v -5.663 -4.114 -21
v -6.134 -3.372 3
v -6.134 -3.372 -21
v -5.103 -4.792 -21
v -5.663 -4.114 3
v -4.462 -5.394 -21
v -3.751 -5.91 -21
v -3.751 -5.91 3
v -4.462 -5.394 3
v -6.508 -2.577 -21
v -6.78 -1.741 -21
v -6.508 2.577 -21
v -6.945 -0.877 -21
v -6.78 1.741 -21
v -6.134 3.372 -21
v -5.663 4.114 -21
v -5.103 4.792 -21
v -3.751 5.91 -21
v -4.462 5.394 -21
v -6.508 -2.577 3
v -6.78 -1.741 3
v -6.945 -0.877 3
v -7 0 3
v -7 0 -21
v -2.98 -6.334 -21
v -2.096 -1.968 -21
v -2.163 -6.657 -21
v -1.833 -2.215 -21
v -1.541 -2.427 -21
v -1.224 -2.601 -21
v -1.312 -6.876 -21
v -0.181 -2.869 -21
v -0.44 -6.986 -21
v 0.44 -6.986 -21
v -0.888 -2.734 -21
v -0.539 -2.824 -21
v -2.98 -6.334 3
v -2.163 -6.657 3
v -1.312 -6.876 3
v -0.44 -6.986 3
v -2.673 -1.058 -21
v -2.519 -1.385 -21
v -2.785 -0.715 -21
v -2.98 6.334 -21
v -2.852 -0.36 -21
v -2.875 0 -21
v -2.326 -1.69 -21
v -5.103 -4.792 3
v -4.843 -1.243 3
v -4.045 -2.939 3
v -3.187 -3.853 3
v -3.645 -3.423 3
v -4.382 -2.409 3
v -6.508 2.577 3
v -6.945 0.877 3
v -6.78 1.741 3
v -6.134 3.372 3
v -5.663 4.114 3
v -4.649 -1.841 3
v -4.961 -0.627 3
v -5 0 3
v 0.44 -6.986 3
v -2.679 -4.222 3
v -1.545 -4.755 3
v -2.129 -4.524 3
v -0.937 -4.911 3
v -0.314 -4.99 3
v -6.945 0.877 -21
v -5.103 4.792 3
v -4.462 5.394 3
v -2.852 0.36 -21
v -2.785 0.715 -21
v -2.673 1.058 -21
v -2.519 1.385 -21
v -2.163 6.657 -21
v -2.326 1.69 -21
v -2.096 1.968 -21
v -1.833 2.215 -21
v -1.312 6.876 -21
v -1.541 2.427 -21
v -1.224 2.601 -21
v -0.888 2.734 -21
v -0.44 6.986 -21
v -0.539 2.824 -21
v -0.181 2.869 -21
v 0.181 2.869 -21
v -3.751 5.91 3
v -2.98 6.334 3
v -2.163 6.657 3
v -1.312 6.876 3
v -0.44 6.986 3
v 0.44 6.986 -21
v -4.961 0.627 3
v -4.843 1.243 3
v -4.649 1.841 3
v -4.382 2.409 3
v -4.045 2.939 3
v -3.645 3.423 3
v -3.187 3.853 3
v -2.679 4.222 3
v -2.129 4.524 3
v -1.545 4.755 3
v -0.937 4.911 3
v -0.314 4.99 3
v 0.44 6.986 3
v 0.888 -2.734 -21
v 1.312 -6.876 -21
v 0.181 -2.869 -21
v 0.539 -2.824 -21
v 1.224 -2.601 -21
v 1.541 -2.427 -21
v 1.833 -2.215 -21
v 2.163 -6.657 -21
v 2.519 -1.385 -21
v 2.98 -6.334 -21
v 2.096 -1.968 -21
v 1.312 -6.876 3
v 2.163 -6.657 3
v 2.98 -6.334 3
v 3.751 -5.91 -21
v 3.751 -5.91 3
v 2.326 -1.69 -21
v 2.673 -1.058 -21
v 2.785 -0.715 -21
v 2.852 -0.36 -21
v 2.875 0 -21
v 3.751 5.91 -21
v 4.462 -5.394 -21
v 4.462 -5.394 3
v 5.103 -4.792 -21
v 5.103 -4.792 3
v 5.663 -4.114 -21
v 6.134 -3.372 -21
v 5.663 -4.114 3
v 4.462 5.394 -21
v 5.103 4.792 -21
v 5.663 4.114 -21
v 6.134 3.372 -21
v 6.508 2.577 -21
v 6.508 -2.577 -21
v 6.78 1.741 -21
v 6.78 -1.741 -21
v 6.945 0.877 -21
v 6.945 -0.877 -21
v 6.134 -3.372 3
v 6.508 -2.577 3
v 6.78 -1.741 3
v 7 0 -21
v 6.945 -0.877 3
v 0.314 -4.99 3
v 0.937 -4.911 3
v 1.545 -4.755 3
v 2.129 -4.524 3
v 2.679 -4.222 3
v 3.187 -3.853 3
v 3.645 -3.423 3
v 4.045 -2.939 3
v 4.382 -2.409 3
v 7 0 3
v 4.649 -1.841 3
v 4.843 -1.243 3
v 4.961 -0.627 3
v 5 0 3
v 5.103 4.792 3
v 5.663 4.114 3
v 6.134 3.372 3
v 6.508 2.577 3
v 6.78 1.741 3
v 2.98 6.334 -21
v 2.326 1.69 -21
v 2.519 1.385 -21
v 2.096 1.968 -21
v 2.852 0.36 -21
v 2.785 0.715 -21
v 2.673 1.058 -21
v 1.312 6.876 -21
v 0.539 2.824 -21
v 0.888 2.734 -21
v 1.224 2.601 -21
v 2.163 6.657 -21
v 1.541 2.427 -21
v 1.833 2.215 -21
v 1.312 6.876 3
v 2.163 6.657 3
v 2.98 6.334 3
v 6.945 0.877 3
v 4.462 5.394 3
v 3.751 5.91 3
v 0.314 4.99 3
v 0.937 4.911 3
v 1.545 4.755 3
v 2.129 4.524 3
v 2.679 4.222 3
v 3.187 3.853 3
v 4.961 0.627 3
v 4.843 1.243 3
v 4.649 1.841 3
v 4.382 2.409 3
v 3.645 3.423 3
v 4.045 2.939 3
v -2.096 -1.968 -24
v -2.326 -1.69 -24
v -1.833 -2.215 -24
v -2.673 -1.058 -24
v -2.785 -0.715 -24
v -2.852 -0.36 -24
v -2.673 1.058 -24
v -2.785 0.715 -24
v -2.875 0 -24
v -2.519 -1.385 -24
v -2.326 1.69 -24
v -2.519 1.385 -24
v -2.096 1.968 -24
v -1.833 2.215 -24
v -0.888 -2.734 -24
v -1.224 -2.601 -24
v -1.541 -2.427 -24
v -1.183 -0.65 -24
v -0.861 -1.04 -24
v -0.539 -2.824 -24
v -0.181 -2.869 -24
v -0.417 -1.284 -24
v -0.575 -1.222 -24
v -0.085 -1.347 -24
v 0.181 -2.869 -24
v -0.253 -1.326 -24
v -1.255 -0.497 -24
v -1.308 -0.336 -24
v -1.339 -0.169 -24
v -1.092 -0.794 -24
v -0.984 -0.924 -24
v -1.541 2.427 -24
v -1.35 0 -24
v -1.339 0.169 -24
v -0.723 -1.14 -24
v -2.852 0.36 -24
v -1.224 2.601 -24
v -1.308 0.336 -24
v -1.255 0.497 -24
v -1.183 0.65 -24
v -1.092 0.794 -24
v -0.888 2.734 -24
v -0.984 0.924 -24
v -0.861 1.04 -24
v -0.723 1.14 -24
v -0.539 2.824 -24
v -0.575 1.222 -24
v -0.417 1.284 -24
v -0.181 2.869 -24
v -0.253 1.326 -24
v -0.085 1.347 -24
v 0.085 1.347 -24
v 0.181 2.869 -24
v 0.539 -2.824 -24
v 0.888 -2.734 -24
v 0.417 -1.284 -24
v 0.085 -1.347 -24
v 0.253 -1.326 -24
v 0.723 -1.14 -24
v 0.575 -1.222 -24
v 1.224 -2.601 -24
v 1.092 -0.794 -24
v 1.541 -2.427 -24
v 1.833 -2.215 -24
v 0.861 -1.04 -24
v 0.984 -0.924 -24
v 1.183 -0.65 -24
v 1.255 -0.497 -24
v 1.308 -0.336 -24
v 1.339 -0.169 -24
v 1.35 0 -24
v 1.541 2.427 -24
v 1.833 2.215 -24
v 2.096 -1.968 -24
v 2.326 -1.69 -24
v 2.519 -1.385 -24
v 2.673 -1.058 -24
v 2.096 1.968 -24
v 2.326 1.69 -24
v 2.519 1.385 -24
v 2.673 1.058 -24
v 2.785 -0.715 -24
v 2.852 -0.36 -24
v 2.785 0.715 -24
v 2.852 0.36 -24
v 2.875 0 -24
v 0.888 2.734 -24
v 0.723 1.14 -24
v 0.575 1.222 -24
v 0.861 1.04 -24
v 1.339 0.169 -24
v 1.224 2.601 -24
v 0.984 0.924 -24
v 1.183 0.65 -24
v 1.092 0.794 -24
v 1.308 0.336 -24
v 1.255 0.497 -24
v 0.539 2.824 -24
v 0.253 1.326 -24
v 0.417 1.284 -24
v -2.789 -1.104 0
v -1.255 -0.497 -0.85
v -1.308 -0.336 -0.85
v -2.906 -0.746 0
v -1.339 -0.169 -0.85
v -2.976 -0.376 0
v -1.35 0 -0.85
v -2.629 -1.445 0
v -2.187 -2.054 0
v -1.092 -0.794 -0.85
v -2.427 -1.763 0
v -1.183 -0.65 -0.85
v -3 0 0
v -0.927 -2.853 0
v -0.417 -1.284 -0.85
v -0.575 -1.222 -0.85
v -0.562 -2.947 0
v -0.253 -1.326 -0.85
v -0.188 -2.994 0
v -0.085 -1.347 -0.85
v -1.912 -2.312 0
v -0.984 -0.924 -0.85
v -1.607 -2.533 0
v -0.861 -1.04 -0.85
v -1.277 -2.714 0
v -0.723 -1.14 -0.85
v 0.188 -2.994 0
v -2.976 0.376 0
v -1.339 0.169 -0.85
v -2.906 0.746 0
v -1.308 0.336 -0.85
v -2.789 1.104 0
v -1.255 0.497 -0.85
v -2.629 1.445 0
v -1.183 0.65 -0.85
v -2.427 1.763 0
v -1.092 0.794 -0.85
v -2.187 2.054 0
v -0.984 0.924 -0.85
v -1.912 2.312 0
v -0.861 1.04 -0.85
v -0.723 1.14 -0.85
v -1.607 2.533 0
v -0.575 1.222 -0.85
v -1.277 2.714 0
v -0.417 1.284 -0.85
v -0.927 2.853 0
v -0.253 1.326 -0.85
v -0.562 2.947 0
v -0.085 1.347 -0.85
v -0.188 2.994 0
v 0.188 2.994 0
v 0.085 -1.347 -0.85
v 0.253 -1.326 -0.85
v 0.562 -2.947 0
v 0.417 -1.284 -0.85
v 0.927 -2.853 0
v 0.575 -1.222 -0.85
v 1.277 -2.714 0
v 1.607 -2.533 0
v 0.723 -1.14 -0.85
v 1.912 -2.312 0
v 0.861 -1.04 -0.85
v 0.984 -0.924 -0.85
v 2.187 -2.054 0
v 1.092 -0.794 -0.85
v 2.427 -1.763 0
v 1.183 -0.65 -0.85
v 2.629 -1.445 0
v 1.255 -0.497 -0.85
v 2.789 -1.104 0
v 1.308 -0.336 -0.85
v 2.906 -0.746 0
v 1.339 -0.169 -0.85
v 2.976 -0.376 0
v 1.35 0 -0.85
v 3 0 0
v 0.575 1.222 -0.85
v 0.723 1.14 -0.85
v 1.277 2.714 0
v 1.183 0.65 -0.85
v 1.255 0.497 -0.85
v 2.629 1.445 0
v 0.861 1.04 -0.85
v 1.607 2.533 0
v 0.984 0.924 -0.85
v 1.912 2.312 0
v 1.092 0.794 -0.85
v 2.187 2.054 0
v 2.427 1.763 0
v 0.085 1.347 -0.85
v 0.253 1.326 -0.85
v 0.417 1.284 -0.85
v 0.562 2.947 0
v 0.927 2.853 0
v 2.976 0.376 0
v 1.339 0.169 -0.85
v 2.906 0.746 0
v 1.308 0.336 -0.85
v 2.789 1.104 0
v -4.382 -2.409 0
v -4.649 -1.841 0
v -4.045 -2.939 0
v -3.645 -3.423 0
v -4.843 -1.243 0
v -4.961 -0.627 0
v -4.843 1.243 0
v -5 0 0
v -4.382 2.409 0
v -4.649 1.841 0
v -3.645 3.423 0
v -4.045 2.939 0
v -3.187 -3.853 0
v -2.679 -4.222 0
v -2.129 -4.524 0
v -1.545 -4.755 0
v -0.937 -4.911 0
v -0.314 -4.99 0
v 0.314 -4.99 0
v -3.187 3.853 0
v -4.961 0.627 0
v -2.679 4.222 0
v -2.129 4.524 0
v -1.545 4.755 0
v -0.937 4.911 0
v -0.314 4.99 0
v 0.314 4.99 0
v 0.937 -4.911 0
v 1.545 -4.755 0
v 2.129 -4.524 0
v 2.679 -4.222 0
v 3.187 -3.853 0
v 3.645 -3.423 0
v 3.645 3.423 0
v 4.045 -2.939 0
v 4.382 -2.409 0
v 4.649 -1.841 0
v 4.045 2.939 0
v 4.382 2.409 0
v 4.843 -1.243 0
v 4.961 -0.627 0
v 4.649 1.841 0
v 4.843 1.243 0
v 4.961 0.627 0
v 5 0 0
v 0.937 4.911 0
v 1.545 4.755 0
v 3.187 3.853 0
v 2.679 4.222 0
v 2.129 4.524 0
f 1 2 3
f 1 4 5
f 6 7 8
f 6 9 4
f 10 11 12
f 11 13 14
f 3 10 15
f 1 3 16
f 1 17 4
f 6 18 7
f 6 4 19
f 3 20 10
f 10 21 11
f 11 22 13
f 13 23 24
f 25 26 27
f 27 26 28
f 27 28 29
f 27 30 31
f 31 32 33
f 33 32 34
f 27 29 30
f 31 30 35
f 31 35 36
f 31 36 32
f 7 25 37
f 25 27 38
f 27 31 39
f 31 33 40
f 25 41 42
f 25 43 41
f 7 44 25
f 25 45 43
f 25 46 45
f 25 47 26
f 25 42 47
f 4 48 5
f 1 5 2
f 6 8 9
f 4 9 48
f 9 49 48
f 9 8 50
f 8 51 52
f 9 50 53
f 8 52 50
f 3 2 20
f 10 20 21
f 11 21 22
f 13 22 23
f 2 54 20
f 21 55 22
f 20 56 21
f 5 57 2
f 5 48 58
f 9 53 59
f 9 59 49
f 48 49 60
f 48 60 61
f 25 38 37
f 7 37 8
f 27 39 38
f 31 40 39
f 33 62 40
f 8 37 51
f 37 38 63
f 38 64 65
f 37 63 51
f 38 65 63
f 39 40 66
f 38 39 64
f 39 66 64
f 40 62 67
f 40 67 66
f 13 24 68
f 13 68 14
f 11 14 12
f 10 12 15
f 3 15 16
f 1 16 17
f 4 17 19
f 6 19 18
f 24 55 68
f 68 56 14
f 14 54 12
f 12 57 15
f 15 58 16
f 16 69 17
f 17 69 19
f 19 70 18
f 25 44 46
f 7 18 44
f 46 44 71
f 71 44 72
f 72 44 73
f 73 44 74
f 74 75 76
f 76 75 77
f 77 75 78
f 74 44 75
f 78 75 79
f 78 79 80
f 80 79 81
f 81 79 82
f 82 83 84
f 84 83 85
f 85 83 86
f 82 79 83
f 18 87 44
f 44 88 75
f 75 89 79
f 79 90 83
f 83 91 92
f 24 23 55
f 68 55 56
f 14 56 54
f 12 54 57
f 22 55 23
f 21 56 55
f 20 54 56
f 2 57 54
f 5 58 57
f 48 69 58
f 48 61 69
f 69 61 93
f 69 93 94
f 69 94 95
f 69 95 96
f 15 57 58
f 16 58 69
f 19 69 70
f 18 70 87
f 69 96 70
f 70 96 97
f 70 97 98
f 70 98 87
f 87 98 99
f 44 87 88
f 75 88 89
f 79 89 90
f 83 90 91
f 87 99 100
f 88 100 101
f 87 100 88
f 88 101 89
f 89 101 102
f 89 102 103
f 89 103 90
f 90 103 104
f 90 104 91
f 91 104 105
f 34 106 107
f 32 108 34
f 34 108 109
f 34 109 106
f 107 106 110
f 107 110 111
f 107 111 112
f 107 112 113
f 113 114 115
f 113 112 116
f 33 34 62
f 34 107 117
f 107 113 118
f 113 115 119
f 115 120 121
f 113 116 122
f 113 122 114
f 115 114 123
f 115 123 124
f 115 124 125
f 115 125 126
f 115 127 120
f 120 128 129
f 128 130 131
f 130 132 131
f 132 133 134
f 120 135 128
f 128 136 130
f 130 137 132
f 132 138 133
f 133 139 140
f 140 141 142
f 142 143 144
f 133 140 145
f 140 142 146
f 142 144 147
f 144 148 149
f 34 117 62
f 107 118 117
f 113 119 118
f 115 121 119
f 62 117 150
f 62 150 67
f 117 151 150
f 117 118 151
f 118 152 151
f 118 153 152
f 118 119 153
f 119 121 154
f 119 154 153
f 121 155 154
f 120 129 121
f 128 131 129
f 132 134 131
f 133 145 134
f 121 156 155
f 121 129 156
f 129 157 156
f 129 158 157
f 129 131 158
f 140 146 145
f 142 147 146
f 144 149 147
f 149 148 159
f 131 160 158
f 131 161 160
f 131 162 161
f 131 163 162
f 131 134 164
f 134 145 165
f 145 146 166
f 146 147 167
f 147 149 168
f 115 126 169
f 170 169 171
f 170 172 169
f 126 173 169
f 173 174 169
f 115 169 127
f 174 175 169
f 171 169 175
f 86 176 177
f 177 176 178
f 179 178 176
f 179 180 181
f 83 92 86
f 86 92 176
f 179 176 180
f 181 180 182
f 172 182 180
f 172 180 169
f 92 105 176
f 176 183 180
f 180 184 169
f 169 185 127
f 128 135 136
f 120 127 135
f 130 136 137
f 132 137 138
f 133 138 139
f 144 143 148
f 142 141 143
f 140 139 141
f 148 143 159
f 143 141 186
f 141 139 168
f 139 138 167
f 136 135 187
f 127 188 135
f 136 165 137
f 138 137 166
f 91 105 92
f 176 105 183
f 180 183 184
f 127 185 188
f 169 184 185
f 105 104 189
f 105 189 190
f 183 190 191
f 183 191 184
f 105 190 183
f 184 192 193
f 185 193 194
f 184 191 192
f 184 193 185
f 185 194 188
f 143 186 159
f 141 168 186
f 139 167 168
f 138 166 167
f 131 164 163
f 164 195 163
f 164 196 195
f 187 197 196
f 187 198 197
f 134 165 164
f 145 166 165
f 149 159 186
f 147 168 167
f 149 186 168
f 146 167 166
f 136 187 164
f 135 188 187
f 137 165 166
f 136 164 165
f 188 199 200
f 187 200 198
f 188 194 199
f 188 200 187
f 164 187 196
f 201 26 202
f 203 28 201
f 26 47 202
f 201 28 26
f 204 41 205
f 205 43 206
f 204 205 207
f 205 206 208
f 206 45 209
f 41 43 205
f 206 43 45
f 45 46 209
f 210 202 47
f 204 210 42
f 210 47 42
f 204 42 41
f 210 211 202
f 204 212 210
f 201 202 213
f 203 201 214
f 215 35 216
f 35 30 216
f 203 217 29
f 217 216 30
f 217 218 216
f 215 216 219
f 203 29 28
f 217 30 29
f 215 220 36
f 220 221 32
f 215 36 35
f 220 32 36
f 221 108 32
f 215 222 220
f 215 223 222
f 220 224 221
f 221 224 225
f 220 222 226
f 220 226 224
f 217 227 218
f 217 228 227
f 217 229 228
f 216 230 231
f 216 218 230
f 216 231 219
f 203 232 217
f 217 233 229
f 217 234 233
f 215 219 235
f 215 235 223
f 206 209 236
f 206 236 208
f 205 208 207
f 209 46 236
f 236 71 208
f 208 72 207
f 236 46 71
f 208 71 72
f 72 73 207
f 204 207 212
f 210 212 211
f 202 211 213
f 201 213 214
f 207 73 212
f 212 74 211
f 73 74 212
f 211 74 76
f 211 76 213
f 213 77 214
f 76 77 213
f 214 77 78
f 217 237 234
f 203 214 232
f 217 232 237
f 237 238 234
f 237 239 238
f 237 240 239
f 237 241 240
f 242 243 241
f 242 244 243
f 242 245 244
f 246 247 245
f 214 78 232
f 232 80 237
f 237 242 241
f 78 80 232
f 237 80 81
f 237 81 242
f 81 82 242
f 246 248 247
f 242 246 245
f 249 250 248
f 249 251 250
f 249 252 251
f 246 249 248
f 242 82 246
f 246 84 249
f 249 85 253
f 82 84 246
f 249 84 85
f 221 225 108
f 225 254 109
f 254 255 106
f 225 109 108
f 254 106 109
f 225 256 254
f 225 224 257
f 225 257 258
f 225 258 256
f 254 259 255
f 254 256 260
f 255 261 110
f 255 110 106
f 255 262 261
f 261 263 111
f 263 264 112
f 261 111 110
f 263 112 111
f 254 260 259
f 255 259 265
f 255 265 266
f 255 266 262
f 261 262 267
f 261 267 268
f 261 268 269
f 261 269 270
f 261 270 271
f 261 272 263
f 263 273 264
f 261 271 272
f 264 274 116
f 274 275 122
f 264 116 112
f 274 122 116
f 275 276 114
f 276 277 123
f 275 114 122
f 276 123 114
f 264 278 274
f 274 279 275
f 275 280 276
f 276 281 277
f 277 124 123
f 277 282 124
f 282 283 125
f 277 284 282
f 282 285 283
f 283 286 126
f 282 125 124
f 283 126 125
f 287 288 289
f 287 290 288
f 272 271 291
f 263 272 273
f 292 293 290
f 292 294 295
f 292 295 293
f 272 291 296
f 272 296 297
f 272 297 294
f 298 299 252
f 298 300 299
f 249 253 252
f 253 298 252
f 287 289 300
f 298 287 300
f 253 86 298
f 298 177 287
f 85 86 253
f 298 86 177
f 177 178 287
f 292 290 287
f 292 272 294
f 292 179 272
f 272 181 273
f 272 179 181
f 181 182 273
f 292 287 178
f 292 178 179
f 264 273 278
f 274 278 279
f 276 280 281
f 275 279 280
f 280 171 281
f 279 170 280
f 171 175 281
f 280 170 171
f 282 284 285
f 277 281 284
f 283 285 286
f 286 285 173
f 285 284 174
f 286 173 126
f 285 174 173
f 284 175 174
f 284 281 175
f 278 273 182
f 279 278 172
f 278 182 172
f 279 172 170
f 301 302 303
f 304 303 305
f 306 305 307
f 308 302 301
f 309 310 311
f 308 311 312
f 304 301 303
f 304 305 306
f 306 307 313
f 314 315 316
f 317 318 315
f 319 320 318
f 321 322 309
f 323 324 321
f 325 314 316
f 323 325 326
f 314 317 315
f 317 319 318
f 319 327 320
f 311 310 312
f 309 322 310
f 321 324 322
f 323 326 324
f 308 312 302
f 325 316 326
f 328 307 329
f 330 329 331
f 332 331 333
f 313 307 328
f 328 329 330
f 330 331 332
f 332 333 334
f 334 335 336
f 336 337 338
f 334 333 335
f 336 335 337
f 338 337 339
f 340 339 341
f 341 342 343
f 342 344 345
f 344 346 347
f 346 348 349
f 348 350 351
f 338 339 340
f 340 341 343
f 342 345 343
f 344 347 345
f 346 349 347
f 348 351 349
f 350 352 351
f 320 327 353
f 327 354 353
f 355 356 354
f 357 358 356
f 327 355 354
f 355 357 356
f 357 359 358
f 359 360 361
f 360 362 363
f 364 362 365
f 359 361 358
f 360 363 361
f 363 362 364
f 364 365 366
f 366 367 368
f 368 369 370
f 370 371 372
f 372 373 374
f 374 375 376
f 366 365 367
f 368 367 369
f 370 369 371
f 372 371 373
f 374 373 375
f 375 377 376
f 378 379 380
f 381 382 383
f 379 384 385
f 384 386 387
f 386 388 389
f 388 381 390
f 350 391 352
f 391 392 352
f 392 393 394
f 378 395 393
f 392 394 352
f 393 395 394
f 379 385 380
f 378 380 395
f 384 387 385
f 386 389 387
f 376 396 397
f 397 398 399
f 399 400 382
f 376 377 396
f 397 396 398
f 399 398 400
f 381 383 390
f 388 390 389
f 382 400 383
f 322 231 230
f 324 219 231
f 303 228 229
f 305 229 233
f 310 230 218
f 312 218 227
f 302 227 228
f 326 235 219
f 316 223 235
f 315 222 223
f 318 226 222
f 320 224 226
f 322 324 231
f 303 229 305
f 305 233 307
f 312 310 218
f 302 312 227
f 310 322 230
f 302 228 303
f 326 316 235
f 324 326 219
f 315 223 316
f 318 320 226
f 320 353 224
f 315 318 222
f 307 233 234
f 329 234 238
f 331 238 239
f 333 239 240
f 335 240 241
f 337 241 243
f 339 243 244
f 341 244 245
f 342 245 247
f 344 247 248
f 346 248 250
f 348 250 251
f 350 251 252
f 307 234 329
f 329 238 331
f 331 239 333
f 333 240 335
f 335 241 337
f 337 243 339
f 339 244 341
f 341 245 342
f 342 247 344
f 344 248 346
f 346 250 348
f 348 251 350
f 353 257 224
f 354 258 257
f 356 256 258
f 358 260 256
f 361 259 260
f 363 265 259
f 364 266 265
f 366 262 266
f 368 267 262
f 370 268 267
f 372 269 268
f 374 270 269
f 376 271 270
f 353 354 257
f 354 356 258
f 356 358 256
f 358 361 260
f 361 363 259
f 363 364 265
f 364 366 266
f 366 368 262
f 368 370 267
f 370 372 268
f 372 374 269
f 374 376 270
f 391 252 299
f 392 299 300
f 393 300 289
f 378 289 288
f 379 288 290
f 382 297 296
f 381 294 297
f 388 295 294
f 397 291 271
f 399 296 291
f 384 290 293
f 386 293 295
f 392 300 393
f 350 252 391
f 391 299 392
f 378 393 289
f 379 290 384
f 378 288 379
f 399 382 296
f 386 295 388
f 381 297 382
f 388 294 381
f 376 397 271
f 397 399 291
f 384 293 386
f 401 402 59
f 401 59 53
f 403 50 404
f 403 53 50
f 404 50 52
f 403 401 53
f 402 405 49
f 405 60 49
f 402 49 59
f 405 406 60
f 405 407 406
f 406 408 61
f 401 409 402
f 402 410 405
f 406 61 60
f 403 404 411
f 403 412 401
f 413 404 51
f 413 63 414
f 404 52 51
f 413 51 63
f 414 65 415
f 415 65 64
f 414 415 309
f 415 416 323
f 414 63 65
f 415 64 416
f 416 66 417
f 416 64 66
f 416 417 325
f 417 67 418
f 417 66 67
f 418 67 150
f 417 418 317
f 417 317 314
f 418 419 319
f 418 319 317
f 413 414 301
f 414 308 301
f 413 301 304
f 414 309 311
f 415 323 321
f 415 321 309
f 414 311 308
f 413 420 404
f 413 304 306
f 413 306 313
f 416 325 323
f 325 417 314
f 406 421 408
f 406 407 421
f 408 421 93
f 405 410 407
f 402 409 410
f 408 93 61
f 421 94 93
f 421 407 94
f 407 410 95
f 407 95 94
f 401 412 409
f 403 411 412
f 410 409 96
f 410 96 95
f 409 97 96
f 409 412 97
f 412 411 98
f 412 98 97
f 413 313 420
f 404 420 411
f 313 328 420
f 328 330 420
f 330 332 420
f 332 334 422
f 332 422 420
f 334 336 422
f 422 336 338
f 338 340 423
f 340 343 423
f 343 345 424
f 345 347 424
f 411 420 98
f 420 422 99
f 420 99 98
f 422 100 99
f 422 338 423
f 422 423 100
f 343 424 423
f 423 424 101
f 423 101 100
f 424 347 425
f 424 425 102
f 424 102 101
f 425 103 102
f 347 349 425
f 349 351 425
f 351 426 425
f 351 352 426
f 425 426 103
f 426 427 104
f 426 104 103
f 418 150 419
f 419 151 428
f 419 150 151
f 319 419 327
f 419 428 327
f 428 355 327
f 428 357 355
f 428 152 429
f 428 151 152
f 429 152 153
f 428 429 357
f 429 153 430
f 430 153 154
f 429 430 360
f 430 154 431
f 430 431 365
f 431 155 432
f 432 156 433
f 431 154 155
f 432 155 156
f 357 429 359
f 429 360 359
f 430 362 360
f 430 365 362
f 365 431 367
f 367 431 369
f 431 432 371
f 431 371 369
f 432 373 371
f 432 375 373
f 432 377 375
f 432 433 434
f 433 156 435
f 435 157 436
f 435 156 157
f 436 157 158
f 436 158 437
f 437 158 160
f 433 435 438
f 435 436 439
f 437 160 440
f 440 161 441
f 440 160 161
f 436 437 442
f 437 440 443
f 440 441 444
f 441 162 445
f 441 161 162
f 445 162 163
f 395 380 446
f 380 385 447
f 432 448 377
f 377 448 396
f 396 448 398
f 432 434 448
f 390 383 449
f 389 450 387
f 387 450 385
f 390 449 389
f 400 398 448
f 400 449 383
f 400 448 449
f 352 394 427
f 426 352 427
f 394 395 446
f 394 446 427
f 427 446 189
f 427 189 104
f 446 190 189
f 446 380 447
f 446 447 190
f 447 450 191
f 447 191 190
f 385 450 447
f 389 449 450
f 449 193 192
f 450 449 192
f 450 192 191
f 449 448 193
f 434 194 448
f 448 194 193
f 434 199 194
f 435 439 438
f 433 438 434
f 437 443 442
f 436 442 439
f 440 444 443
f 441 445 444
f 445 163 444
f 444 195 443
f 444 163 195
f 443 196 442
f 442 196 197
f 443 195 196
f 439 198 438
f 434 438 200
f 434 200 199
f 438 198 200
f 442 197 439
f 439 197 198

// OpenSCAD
$fn = 50;


difference() {
	union() {
		translate(v = [0, 0, -21.0000000000]) {
			cylinder(h = 24, r = 7.0000000000);
		}
		#translate(v = [0, 0, -24.0000000000]) {
			cylinder(h = 24, r = 2.8750000000);
		}
	}
	union() {
		translate(v = [0, 0, 0]) {
			rotate(a = [0, 0, 0]) {
				difference() {
					union() {
						translate(v = [0, 0, -24.0000000000]) {
							cylinder(h = 24, r = 1.0000000000);
						}
						translate(v = [0, 0, -0.8500000000]) {
							cylinder(h = 0.8500000000, r1 = 1.3500000000, r2 = 3.0000000000);
						}
						translate(v = [0, 0, -24.0000000000]) {
							cylinder(h = 24, r = 1.3500000000);
						}
						translate(v = [0, 0, -24.0000000000]) {
							cylinder(h = 24, r = 1.0000000000);
						}
					}
					union();
				}
			}
		}
		#cylinder(h = 3, r = 5.0000000000);
	}
}
